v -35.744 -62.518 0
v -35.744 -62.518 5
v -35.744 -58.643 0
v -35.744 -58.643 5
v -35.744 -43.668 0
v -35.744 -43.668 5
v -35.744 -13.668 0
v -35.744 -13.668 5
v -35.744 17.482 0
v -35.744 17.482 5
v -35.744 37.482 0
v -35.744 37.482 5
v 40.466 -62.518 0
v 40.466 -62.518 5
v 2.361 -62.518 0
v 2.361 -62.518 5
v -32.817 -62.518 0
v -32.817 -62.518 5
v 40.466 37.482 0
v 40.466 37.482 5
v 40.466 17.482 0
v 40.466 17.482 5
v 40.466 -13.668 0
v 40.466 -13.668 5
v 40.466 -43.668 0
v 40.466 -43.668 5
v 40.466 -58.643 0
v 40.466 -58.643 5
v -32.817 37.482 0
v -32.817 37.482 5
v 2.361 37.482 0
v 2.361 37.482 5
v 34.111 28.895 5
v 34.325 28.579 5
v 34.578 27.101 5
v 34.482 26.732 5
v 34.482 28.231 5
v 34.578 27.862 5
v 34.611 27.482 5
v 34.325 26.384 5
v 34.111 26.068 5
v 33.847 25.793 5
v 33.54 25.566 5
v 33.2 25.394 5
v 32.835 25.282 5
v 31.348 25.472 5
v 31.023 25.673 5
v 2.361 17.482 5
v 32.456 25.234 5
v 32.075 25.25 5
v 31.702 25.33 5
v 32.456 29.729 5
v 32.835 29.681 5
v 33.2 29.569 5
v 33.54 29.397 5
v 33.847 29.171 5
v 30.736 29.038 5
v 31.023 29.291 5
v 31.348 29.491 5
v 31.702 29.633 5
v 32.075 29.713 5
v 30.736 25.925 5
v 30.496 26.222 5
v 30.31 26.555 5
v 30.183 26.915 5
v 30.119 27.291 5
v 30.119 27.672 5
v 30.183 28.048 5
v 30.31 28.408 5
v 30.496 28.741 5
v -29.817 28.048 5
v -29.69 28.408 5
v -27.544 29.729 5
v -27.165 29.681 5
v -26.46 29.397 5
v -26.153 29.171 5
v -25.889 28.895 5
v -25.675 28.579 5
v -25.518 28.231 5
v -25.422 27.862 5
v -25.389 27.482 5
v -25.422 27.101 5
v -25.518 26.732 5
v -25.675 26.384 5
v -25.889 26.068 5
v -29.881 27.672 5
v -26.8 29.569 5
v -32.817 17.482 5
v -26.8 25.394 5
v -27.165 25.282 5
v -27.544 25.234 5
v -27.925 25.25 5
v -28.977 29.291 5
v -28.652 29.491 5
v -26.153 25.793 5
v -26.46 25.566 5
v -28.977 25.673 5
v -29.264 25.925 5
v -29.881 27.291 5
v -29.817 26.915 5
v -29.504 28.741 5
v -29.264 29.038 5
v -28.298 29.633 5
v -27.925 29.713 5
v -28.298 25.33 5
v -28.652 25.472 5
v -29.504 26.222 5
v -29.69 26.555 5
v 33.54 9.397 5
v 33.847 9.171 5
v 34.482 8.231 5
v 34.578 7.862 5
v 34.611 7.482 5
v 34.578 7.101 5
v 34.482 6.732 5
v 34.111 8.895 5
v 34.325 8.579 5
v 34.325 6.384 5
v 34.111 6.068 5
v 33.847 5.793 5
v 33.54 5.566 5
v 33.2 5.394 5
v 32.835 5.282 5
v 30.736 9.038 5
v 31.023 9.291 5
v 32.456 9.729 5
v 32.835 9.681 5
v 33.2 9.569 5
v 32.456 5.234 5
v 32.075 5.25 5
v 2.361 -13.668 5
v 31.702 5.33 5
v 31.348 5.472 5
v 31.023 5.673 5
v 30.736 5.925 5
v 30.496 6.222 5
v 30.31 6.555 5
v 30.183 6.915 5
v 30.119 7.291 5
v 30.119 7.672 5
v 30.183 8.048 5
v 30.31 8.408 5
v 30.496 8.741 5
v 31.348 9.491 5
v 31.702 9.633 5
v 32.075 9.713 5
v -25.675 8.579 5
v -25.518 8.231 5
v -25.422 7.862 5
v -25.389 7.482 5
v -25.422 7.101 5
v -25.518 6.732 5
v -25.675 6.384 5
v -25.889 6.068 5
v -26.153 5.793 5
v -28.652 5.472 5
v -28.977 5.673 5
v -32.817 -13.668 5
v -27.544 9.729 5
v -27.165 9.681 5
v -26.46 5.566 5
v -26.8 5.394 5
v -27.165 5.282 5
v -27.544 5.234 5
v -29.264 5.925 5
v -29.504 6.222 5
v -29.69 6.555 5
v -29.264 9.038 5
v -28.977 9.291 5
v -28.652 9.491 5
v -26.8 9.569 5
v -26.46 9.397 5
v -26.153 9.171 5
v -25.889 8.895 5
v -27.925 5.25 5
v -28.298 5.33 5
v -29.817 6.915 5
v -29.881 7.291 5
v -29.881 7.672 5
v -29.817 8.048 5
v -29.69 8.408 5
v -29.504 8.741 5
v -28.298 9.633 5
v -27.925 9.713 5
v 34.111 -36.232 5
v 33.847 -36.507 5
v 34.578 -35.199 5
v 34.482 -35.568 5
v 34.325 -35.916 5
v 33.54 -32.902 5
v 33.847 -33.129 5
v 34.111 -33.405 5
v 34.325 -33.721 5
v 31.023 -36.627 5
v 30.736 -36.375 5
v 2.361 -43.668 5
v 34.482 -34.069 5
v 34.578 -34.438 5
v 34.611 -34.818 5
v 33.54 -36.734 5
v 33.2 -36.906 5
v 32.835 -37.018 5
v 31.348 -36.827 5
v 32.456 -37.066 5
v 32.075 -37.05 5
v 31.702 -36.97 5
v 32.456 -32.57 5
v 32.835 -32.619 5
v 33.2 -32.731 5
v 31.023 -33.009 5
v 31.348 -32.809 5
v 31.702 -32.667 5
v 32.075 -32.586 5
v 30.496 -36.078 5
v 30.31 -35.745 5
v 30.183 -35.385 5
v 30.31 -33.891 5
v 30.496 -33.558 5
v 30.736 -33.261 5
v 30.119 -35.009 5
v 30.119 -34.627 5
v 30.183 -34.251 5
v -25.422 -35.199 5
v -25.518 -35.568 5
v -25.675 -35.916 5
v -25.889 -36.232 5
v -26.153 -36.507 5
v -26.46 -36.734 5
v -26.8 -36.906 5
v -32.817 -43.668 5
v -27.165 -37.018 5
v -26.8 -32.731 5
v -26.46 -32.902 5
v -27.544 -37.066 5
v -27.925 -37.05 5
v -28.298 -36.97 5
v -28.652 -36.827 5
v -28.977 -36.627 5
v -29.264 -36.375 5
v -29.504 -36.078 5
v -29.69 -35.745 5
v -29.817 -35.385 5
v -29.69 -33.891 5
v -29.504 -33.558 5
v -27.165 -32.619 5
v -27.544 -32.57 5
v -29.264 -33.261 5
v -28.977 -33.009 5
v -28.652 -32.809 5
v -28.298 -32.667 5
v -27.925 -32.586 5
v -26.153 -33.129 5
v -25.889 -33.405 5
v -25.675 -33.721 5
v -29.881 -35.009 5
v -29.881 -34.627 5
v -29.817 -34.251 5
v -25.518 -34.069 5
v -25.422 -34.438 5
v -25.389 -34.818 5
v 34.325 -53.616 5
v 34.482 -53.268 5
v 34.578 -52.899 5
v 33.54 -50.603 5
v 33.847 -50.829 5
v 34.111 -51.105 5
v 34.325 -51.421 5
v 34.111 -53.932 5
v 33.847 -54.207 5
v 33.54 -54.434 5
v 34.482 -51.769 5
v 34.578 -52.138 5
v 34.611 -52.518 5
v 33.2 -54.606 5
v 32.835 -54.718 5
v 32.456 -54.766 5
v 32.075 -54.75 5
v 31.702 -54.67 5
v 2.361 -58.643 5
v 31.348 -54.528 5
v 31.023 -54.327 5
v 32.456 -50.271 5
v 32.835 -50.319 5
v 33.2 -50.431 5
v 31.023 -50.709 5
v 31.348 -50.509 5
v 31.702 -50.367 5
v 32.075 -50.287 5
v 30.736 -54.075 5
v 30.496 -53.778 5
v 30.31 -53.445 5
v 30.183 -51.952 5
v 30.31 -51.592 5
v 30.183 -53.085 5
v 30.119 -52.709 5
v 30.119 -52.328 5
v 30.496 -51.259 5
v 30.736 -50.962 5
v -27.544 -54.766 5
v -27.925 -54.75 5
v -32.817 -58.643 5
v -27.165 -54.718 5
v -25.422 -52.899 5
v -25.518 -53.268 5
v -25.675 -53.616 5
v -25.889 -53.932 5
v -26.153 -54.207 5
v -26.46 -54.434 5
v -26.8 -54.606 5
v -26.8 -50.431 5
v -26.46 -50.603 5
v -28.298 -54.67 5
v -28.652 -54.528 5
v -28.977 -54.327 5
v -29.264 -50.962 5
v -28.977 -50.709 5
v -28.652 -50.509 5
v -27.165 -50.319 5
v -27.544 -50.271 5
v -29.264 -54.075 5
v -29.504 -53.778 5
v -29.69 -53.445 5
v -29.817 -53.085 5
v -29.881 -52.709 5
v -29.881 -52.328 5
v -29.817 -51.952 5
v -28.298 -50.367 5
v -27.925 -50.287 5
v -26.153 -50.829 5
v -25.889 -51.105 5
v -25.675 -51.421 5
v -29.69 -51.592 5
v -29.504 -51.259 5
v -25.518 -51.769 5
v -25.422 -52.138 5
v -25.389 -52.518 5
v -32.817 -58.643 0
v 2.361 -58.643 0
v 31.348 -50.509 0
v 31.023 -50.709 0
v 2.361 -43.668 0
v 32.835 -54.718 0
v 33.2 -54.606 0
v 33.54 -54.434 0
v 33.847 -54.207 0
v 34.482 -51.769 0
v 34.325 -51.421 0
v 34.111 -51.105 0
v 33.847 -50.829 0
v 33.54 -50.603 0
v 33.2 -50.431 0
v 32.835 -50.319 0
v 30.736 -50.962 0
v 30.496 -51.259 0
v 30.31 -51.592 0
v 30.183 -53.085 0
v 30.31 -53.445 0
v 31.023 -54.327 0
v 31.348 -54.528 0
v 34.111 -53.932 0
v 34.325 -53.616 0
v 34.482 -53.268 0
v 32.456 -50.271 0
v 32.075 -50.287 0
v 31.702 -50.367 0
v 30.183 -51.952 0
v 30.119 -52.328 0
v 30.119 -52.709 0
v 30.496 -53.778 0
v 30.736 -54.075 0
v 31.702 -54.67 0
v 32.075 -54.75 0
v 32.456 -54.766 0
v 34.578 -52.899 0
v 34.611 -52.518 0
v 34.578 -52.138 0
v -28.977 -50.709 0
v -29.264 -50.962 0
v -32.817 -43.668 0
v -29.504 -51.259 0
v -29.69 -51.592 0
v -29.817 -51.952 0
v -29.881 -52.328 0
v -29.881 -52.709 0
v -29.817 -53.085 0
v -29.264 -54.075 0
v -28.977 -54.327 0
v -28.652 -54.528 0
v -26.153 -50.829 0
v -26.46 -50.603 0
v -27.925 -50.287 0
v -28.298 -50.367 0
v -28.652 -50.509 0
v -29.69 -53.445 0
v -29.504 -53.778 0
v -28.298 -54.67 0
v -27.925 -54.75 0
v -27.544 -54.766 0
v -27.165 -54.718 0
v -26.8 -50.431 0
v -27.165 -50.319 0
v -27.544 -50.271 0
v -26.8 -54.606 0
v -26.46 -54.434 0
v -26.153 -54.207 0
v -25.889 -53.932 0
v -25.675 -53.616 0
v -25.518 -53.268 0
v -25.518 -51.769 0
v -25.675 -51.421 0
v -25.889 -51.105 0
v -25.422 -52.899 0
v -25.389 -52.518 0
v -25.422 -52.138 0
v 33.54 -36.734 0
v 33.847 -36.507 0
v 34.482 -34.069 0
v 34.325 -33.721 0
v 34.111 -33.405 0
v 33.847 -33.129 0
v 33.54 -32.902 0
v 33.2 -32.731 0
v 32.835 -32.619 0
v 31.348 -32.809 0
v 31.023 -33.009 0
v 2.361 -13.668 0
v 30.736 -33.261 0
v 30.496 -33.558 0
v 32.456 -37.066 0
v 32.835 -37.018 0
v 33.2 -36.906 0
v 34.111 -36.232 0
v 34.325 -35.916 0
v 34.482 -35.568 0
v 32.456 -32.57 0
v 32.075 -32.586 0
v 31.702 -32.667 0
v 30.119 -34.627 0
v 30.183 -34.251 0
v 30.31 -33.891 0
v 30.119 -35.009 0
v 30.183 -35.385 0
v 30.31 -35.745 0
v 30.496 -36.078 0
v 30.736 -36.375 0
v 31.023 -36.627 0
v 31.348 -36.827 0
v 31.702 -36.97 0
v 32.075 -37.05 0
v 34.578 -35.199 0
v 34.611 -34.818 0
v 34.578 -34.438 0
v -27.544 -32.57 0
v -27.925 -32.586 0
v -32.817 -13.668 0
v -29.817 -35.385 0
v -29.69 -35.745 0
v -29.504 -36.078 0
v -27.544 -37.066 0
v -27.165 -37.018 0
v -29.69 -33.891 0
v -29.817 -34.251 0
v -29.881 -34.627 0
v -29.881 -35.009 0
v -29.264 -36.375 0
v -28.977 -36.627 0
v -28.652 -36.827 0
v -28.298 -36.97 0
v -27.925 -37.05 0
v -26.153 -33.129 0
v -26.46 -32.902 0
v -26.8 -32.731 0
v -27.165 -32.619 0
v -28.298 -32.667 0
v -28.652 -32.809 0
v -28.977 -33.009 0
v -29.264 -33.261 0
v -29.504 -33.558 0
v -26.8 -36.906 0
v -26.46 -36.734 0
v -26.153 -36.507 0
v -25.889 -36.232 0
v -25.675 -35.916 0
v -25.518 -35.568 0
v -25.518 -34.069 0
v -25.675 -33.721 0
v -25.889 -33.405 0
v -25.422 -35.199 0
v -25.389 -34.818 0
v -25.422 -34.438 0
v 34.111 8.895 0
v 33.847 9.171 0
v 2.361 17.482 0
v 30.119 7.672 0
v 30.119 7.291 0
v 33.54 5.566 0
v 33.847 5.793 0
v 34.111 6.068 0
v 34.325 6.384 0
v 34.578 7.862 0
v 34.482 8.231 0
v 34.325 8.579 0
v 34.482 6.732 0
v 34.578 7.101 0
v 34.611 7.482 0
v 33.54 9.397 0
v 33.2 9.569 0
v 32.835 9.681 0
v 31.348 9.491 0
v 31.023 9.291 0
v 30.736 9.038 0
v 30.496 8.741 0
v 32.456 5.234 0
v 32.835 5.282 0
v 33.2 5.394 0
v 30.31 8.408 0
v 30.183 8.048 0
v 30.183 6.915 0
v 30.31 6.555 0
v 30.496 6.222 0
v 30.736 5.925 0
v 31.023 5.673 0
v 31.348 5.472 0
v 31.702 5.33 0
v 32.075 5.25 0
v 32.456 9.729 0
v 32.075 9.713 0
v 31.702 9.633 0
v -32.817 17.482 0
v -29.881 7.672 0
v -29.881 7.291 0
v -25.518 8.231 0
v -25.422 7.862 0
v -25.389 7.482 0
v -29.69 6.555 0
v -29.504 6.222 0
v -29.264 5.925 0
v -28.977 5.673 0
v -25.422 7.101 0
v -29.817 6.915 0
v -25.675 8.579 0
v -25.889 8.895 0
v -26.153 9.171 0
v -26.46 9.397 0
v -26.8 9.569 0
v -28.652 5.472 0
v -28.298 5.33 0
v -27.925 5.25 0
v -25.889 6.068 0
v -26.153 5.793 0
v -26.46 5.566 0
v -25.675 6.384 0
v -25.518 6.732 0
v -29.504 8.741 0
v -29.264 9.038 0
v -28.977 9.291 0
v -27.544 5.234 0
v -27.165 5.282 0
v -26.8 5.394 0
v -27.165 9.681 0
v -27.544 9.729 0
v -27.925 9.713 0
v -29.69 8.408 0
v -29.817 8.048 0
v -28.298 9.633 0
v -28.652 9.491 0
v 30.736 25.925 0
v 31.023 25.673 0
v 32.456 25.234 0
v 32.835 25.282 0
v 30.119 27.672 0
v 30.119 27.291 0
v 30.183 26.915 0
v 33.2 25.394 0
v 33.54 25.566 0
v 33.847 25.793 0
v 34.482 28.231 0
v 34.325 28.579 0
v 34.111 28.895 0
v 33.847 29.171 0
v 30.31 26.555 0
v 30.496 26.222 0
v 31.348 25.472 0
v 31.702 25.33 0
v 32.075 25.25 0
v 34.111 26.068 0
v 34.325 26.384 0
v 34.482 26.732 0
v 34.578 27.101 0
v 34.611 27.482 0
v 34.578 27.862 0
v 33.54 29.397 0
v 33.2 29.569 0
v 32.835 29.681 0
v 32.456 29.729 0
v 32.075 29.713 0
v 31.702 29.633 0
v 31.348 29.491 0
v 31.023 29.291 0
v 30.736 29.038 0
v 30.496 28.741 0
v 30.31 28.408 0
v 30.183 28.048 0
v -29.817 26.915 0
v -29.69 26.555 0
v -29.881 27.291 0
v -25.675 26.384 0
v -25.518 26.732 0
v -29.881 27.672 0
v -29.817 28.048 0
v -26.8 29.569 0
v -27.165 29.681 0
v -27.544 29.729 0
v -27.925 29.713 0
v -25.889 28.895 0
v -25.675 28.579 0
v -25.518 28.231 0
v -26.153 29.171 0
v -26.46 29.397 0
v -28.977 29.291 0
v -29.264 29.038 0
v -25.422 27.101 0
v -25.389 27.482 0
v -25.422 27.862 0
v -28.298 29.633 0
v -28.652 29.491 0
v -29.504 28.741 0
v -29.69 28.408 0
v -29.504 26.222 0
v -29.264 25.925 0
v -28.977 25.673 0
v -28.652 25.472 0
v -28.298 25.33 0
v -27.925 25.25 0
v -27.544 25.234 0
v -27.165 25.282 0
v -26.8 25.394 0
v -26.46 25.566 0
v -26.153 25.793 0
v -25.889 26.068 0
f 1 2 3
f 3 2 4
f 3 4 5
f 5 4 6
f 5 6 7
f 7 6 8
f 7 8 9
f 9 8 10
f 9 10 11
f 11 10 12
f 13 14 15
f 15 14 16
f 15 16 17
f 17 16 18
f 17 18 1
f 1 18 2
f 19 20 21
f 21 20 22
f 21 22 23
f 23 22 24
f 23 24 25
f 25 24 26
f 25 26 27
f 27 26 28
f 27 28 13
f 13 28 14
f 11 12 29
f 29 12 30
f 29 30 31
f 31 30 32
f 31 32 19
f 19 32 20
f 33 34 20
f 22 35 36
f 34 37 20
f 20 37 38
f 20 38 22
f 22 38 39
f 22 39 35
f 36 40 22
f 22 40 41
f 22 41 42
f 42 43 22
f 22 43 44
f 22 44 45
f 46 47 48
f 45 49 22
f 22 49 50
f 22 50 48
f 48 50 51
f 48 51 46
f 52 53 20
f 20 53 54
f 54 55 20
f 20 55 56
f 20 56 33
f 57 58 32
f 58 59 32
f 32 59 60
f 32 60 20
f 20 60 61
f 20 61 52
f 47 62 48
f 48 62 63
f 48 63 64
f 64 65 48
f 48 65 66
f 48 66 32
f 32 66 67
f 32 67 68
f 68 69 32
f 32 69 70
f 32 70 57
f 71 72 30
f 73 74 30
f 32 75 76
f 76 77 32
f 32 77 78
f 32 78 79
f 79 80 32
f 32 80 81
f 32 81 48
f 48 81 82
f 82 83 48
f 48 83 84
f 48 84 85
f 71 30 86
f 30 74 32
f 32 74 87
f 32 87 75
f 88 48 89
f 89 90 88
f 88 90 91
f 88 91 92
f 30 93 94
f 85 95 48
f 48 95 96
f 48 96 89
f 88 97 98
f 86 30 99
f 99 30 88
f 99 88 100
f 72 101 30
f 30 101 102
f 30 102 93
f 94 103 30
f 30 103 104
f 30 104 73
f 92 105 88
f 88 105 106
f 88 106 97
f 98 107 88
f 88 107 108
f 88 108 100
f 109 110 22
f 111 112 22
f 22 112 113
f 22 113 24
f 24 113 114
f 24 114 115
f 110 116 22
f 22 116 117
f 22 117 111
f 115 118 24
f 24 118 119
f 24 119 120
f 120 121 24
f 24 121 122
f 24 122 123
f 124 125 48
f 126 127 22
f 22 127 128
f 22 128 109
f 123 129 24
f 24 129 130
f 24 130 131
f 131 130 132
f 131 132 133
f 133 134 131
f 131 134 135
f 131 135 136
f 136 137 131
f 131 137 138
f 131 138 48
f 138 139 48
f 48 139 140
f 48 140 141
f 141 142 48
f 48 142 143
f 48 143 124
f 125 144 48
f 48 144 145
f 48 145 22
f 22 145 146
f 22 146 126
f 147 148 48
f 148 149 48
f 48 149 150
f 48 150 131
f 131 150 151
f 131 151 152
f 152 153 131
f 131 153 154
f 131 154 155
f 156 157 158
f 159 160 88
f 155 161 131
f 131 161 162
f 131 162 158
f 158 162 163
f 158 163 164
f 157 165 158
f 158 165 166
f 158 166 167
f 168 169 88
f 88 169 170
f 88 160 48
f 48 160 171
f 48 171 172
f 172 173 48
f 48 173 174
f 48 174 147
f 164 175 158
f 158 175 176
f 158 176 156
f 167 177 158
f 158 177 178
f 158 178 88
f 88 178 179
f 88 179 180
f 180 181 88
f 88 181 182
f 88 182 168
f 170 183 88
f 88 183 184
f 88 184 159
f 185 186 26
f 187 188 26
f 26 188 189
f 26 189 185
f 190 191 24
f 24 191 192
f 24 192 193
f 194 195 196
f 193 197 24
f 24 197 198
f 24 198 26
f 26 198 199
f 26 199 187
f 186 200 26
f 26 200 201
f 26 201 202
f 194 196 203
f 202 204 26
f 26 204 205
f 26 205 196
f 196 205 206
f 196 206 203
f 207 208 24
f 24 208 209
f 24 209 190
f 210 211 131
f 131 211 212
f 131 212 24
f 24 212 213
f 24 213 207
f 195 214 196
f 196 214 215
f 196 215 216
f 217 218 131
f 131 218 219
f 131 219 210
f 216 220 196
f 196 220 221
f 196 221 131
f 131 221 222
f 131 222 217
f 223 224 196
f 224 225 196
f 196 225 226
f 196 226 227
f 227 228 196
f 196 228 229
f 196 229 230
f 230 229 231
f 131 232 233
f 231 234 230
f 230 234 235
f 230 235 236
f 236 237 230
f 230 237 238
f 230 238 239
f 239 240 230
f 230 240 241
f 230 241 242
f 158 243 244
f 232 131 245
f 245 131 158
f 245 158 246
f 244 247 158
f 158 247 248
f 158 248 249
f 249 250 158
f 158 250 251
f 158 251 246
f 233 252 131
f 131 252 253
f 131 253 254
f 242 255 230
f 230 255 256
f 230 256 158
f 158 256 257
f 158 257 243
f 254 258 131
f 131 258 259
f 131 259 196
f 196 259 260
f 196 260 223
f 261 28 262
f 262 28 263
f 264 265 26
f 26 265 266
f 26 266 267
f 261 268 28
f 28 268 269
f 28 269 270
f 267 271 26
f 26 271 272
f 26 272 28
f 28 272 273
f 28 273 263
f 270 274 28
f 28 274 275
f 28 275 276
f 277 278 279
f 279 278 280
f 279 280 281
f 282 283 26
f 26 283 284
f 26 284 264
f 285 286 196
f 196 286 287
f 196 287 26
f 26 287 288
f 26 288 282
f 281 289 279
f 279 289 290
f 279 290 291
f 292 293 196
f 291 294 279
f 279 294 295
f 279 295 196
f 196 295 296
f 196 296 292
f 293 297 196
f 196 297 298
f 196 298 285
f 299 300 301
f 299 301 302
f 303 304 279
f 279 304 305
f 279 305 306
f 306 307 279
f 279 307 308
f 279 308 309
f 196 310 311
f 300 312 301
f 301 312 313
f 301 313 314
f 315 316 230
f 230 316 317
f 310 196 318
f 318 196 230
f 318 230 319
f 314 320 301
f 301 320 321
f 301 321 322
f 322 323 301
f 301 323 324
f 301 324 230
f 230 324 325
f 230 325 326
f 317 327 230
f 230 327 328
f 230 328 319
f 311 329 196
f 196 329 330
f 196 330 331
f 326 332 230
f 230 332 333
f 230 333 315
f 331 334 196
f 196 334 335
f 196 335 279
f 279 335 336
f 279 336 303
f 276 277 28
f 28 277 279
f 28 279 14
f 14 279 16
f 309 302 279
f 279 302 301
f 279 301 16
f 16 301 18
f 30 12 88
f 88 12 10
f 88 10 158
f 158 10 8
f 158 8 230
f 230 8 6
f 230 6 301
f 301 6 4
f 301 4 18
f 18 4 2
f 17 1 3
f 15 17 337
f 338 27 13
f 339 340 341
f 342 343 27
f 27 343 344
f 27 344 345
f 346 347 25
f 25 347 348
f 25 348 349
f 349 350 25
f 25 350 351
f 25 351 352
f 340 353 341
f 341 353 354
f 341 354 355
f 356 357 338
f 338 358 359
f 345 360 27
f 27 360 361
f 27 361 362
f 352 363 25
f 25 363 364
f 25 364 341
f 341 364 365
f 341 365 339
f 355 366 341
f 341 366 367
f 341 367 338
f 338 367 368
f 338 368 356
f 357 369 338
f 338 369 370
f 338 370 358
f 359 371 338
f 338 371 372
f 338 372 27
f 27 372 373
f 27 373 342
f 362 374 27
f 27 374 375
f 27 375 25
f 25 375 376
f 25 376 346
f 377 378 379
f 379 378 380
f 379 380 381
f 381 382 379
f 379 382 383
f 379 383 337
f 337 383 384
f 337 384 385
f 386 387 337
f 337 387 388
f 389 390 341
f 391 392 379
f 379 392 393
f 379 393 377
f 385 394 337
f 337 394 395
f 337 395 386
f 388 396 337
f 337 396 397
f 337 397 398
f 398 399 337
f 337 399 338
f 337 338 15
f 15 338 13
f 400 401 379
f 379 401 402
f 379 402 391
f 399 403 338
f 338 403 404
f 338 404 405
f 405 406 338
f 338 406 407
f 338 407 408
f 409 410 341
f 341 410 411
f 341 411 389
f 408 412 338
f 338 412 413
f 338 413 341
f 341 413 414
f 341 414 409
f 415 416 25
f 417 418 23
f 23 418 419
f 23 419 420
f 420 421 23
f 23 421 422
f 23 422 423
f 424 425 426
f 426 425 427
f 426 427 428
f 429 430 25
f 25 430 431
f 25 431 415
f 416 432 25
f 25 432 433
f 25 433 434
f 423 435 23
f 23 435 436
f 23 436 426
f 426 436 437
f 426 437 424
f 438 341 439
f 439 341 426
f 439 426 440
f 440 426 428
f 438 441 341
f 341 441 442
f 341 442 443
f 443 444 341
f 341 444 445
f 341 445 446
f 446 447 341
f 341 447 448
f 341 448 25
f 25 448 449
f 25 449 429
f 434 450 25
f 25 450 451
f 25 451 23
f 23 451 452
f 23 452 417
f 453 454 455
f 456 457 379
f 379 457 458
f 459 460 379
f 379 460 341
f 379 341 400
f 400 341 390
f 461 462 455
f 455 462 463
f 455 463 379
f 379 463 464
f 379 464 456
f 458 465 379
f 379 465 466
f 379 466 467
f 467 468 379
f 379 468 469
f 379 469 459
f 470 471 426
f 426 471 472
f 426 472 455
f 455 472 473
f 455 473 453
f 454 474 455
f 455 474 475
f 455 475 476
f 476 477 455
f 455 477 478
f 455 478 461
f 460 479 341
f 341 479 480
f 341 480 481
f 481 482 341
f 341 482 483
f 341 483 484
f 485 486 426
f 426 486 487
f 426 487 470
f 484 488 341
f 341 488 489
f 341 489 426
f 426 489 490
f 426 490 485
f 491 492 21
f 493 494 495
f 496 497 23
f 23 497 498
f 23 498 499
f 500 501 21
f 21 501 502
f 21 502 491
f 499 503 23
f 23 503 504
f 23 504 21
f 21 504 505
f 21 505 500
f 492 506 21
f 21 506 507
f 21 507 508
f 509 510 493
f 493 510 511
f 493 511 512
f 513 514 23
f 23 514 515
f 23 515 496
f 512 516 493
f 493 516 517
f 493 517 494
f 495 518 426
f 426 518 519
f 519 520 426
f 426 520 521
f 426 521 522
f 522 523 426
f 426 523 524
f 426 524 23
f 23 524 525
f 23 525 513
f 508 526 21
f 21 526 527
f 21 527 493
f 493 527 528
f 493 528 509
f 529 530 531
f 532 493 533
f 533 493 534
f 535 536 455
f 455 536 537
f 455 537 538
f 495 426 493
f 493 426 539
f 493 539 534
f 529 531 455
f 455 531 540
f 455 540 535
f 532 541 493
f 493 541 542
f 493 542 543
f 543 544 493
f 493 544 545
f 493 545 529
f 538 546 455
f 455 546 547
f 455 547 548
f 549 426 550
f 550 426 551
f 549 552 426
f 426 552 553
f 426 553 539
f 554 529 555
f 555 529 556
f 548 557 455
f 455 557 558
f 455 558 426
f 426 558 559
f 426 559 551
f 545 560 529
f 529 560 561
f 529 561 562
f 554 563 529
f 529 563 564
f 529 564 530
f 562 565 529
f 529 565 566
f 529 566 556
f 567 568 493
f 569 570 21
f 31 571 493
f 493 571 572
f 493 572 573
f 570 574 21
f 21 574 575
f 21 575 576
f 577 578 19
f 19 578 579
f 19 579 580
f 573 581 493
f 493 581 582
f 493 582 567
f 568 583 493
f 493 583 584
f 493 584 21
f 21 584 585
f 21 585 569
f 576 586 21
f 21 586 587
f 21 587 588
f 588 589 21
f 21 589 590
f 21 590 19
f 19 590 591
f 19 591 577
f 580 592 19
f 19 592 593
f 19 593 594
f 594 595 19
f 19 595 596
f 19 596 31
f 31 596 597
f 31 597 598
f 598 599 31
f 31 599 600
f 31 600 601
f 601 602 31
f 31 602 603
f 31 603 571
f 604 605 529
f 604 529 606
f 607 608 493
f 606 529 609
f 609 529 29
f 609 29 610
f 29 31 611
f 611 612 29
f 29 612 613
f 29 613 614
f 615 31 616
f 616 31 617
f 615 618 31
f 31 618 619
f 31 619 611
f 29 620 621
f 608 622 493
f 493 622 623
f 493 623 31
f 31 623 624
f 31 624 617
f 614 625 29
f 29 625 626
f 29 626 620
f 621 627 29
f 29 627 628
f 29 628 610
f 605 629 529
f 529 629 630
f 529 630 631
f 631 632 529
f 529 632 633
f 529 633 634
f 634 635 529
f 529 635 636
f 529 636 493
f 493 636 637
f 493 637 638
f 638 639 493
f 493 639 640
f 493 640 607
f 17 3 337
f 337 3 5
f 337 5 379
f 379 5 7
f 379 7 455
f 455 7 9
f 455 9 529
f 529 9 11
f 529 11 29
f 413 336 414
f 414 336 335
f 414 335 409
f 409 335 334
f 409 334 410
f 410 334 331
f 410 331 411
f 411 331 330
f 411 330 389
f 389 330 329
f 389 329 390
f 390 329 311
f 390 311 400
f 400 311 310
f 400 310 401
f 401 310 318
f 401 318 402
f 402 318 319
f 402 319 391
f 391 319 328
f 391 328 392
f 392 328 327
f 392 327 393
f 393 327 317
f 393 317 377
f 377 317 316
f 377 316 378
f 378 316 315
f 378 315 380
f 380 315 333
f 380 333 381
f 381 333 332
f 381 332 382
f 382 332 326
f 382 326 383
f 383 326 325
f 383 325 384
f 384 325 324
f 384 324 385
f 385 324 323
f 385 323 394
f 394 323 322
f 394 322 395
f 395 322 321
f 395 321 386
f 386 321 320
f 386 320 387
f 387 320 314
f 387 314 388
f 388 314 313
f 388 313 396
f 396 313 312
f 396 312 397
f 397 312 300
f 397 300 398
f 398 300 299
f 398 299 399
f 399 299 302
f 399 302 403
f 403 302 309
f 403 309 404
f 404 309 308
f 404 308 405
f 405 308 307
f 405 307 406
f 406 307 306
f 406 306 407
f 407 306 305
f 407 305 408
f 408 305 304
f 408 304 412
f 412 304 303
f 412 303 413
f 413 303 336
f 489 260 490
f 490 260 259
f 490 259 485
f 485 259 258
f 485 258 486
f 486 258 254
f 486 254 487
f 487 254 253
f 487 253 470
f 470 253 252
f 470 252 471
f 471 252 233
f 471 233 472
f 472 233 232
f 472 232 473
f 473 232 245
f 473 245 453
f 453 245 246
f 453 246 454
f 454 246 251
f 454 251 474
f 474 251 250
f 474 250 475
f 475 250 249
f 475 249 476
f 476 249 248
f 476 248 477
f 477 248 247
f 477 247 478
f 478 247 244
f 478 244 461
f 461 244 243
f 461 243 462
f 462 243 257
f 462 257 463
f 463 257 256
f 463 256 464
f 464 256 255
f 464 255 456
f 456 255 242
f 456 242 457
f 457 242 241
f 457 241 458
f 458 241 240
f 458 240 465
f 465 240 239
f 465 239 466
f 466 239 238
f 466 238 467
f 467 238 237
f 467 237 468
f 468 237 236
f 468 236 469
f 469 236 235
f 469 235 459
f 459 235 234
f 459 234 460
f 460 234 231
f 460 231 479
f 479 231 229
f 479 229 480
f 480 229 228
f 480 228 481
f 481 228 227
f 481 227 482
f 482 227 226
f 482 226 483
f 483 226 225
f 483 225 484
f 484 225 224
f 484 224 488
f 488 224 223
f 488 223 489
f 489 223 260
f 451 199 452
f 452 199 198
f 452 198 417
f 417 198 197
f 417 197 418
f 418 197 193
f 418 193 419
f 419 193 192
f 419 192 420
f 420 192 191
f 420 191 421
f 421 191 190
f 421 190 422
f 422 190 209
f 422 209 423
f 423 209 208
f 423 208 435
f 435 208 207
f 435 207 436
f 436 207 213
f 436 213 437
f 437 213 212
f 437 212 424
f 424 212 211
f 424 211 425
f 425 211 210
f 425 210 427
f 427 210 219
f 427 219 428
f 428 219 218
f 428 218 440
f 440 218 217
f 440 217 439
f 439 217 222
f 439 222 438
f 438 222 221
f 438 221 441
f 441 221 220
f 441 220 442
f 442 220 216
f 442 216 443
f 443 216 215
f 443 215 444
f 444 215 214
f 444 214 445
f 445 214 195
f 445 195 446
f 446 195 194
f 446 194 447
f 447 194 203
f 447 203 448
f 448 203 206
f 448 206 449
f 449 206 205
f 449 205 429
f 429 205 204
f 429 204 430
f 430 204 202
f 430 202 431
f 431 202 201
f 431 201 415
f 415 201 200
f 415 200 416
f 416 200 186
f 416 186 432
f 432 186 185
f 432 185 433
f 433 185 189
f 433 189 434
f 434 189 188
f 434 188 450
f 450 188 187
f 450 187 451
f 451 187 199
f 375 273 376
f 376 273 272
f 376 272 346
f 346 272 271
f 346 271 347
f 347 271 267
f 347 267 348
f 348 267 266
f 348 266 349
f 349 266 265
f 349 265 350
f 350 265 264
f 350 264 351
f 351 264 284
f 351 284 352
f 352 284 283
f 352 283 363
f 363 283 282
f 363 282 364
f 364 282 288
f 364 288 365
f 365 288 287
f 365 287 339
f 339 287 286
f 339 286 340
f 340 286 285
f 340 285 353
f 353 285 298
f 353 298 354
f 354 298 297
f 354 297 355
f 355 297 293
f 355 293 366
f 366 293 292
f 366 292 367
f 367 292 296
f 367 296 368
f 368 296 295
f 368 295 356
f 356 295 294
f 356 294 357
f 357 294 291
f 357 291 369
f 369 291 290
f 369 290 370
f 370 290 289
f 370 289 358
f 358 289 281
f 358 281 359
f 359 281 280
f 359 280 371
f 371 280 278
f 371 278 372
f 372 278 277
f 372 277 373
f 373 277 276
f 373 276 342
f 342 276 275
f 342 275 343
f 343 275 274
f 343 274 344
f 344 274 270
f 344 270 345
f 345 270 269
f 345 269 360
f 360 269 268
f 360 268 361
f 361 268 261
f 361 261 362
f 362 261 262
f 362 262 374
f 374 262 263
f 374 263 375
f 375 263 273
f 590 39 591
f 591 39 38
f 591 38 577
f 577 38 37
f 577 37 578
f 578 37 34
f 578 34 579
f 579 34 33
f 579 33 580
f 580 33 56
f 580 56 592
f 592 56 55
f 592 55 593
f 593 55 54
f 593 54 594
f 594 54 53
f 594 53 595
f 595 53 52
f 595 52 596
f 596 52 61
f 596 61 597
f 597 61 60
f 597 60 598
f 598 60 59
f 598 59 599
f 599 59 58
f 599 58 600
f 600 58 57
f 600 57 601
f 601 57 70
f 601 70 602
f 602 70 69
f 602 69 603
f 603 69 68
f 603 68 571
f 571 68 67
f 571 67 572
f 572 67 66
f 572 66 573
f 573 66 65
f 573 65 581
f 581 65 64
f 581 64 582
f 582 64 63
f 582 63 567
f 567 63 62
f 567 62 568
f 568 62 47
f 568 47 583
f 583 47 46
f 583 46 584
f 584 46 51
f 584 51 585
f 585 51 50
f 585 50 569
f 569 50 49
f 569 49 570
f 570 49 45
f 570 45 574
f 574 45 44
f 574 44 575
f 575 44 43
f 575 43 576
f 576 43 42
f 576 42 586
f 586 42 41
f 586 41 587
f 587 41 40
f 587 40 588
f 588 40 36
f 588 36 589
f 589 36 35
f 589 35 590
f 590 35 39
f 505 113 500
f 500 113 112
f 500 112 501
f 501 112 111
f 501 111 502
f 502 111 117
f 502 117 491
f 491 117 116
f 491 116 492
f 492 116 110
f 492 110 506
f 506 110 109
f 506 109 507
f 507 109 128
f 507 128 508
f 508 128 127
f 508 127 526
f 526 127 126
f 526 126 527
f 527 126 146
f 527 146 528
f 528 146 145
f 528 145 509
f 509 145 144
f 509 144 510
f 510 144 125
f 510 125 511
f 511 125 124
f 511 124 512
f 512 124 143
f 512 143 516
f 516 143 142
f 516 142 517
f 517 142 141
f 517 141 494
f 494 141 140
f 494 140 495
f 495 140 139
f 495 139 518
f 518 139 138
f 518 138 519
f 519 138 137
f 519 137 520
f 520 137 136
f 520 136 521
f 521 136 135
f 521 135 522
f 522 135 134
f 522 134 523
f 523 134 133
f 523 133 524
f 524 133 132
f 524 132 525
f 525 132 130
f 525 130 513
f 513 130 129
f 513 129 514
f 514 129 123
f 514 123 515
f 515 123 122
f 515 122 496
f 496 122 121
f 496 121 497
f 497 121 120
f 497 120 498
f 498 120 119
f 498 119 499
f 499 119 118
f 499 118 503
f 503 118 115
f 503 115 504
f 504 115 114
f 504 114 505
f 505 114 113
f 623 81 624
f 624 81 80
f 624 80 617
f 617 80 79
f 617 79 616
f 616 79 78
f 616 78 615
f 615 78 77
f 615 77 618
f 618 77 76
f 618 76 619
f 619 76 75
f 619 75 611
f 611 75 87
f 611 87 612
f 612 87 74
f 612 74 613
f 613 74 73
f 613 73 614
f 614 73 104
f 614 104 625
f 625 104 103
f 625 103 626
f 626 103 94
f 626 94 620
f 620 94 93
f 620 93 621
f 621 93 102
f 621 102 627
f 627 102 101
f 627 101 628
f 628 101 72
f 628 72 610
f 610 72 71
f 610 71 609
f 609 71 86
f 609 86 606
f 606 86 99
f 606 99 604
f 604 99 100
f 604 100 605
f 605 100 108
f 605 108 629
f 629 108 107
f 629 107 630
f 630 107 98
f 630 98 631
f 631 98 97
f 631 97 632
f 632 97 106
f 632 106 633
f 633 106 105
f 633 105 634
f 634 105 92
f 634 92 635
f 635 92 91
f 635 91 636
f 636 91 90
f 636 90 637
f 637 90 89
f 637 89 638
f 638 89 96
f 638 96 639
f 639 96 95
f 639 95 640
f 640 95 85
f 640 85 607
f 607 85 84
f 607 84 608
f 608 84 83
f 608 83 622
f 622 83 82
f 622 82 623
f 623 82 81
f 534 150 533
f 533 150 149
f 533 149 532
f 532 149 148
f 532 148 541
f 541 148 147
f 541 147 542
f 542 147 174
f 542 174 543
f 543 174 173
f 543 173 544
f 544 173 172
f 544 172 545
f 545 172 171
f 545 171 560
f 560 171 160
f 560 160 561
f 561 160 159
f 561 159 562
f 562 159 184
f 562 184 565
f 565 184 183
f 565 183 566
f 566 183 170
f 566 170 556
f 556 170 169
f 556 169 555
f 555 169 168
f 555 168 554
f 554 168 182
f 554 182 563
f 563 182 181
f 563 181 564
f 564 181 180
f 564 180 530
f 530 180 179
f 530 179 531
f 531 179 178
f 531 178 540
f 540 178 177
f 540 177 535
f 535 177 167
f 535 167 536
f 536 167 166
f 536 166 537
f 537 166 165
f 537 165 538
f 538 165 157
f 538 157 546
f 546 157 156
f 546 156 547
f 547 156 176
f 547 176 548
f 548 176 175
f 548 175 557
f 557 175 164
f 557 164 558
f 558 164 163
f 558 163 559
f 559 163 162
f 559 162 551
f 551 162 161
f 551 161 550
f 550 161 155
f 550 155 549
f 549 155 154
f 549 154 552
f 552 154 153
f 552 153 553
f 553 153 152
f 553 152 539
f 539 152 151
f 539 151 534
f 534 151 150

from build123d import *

# Parameters (mm, degrees)
SKETCH1_W                = 76.21
SKETCH1_H                = 100
BOSS_EXTRUDE1_DEPTH      = 5
M4_CLEARANCE_HOLE1_D     = 4.5
M4_CLEARANCE_HOLE1_DEPTH = 5
M4_CLEARANCE_HOLE1_TIP   = 1.351936393


with BuildPart() as part:
    # Sketch1 → Boss-Extrude1 (new body)
    with BuildSketch(Plane.XY):
        with Locations((2.360596056, -12.518477597)):
            Rectangle(SKETCH1_W, SKETCH1_H)
    extrude(amount=BOSS_EXTRUDE1_DEPTH)

    # M4 Clearance Hole1
    with Locations(Plane.XY.offset(5)):
        with Locations((-27.639403944, 7.481522403), (-27.639403944, 27.481522403), (32.360596056, 7.481522403), (32.360596056, 27.481522403), (32.360596056, -52.518477597), (32.360596056, -34.818262245), (-27.639403944, -34.818262245), (-27.639403944, -52.518477597)):
            Hole(M4_CLEARANCE_HOLE1_D / 2, depth=M4_CLEARANCE_HOLE1_DEPTH)
            with Locations((0, 0, -(M4_CLEARANCE_HOLE1_DEPTH + M4_CLEARANCE_HOLE1_TIP / 2))):  # 118° drill point
                Cone(0, M4_CLEARANCE_HOLE1_D / 2, M4_CLEARANCE_HOLE1_TIP, mode=Mode.SUBTRACT)


solid = part.part
